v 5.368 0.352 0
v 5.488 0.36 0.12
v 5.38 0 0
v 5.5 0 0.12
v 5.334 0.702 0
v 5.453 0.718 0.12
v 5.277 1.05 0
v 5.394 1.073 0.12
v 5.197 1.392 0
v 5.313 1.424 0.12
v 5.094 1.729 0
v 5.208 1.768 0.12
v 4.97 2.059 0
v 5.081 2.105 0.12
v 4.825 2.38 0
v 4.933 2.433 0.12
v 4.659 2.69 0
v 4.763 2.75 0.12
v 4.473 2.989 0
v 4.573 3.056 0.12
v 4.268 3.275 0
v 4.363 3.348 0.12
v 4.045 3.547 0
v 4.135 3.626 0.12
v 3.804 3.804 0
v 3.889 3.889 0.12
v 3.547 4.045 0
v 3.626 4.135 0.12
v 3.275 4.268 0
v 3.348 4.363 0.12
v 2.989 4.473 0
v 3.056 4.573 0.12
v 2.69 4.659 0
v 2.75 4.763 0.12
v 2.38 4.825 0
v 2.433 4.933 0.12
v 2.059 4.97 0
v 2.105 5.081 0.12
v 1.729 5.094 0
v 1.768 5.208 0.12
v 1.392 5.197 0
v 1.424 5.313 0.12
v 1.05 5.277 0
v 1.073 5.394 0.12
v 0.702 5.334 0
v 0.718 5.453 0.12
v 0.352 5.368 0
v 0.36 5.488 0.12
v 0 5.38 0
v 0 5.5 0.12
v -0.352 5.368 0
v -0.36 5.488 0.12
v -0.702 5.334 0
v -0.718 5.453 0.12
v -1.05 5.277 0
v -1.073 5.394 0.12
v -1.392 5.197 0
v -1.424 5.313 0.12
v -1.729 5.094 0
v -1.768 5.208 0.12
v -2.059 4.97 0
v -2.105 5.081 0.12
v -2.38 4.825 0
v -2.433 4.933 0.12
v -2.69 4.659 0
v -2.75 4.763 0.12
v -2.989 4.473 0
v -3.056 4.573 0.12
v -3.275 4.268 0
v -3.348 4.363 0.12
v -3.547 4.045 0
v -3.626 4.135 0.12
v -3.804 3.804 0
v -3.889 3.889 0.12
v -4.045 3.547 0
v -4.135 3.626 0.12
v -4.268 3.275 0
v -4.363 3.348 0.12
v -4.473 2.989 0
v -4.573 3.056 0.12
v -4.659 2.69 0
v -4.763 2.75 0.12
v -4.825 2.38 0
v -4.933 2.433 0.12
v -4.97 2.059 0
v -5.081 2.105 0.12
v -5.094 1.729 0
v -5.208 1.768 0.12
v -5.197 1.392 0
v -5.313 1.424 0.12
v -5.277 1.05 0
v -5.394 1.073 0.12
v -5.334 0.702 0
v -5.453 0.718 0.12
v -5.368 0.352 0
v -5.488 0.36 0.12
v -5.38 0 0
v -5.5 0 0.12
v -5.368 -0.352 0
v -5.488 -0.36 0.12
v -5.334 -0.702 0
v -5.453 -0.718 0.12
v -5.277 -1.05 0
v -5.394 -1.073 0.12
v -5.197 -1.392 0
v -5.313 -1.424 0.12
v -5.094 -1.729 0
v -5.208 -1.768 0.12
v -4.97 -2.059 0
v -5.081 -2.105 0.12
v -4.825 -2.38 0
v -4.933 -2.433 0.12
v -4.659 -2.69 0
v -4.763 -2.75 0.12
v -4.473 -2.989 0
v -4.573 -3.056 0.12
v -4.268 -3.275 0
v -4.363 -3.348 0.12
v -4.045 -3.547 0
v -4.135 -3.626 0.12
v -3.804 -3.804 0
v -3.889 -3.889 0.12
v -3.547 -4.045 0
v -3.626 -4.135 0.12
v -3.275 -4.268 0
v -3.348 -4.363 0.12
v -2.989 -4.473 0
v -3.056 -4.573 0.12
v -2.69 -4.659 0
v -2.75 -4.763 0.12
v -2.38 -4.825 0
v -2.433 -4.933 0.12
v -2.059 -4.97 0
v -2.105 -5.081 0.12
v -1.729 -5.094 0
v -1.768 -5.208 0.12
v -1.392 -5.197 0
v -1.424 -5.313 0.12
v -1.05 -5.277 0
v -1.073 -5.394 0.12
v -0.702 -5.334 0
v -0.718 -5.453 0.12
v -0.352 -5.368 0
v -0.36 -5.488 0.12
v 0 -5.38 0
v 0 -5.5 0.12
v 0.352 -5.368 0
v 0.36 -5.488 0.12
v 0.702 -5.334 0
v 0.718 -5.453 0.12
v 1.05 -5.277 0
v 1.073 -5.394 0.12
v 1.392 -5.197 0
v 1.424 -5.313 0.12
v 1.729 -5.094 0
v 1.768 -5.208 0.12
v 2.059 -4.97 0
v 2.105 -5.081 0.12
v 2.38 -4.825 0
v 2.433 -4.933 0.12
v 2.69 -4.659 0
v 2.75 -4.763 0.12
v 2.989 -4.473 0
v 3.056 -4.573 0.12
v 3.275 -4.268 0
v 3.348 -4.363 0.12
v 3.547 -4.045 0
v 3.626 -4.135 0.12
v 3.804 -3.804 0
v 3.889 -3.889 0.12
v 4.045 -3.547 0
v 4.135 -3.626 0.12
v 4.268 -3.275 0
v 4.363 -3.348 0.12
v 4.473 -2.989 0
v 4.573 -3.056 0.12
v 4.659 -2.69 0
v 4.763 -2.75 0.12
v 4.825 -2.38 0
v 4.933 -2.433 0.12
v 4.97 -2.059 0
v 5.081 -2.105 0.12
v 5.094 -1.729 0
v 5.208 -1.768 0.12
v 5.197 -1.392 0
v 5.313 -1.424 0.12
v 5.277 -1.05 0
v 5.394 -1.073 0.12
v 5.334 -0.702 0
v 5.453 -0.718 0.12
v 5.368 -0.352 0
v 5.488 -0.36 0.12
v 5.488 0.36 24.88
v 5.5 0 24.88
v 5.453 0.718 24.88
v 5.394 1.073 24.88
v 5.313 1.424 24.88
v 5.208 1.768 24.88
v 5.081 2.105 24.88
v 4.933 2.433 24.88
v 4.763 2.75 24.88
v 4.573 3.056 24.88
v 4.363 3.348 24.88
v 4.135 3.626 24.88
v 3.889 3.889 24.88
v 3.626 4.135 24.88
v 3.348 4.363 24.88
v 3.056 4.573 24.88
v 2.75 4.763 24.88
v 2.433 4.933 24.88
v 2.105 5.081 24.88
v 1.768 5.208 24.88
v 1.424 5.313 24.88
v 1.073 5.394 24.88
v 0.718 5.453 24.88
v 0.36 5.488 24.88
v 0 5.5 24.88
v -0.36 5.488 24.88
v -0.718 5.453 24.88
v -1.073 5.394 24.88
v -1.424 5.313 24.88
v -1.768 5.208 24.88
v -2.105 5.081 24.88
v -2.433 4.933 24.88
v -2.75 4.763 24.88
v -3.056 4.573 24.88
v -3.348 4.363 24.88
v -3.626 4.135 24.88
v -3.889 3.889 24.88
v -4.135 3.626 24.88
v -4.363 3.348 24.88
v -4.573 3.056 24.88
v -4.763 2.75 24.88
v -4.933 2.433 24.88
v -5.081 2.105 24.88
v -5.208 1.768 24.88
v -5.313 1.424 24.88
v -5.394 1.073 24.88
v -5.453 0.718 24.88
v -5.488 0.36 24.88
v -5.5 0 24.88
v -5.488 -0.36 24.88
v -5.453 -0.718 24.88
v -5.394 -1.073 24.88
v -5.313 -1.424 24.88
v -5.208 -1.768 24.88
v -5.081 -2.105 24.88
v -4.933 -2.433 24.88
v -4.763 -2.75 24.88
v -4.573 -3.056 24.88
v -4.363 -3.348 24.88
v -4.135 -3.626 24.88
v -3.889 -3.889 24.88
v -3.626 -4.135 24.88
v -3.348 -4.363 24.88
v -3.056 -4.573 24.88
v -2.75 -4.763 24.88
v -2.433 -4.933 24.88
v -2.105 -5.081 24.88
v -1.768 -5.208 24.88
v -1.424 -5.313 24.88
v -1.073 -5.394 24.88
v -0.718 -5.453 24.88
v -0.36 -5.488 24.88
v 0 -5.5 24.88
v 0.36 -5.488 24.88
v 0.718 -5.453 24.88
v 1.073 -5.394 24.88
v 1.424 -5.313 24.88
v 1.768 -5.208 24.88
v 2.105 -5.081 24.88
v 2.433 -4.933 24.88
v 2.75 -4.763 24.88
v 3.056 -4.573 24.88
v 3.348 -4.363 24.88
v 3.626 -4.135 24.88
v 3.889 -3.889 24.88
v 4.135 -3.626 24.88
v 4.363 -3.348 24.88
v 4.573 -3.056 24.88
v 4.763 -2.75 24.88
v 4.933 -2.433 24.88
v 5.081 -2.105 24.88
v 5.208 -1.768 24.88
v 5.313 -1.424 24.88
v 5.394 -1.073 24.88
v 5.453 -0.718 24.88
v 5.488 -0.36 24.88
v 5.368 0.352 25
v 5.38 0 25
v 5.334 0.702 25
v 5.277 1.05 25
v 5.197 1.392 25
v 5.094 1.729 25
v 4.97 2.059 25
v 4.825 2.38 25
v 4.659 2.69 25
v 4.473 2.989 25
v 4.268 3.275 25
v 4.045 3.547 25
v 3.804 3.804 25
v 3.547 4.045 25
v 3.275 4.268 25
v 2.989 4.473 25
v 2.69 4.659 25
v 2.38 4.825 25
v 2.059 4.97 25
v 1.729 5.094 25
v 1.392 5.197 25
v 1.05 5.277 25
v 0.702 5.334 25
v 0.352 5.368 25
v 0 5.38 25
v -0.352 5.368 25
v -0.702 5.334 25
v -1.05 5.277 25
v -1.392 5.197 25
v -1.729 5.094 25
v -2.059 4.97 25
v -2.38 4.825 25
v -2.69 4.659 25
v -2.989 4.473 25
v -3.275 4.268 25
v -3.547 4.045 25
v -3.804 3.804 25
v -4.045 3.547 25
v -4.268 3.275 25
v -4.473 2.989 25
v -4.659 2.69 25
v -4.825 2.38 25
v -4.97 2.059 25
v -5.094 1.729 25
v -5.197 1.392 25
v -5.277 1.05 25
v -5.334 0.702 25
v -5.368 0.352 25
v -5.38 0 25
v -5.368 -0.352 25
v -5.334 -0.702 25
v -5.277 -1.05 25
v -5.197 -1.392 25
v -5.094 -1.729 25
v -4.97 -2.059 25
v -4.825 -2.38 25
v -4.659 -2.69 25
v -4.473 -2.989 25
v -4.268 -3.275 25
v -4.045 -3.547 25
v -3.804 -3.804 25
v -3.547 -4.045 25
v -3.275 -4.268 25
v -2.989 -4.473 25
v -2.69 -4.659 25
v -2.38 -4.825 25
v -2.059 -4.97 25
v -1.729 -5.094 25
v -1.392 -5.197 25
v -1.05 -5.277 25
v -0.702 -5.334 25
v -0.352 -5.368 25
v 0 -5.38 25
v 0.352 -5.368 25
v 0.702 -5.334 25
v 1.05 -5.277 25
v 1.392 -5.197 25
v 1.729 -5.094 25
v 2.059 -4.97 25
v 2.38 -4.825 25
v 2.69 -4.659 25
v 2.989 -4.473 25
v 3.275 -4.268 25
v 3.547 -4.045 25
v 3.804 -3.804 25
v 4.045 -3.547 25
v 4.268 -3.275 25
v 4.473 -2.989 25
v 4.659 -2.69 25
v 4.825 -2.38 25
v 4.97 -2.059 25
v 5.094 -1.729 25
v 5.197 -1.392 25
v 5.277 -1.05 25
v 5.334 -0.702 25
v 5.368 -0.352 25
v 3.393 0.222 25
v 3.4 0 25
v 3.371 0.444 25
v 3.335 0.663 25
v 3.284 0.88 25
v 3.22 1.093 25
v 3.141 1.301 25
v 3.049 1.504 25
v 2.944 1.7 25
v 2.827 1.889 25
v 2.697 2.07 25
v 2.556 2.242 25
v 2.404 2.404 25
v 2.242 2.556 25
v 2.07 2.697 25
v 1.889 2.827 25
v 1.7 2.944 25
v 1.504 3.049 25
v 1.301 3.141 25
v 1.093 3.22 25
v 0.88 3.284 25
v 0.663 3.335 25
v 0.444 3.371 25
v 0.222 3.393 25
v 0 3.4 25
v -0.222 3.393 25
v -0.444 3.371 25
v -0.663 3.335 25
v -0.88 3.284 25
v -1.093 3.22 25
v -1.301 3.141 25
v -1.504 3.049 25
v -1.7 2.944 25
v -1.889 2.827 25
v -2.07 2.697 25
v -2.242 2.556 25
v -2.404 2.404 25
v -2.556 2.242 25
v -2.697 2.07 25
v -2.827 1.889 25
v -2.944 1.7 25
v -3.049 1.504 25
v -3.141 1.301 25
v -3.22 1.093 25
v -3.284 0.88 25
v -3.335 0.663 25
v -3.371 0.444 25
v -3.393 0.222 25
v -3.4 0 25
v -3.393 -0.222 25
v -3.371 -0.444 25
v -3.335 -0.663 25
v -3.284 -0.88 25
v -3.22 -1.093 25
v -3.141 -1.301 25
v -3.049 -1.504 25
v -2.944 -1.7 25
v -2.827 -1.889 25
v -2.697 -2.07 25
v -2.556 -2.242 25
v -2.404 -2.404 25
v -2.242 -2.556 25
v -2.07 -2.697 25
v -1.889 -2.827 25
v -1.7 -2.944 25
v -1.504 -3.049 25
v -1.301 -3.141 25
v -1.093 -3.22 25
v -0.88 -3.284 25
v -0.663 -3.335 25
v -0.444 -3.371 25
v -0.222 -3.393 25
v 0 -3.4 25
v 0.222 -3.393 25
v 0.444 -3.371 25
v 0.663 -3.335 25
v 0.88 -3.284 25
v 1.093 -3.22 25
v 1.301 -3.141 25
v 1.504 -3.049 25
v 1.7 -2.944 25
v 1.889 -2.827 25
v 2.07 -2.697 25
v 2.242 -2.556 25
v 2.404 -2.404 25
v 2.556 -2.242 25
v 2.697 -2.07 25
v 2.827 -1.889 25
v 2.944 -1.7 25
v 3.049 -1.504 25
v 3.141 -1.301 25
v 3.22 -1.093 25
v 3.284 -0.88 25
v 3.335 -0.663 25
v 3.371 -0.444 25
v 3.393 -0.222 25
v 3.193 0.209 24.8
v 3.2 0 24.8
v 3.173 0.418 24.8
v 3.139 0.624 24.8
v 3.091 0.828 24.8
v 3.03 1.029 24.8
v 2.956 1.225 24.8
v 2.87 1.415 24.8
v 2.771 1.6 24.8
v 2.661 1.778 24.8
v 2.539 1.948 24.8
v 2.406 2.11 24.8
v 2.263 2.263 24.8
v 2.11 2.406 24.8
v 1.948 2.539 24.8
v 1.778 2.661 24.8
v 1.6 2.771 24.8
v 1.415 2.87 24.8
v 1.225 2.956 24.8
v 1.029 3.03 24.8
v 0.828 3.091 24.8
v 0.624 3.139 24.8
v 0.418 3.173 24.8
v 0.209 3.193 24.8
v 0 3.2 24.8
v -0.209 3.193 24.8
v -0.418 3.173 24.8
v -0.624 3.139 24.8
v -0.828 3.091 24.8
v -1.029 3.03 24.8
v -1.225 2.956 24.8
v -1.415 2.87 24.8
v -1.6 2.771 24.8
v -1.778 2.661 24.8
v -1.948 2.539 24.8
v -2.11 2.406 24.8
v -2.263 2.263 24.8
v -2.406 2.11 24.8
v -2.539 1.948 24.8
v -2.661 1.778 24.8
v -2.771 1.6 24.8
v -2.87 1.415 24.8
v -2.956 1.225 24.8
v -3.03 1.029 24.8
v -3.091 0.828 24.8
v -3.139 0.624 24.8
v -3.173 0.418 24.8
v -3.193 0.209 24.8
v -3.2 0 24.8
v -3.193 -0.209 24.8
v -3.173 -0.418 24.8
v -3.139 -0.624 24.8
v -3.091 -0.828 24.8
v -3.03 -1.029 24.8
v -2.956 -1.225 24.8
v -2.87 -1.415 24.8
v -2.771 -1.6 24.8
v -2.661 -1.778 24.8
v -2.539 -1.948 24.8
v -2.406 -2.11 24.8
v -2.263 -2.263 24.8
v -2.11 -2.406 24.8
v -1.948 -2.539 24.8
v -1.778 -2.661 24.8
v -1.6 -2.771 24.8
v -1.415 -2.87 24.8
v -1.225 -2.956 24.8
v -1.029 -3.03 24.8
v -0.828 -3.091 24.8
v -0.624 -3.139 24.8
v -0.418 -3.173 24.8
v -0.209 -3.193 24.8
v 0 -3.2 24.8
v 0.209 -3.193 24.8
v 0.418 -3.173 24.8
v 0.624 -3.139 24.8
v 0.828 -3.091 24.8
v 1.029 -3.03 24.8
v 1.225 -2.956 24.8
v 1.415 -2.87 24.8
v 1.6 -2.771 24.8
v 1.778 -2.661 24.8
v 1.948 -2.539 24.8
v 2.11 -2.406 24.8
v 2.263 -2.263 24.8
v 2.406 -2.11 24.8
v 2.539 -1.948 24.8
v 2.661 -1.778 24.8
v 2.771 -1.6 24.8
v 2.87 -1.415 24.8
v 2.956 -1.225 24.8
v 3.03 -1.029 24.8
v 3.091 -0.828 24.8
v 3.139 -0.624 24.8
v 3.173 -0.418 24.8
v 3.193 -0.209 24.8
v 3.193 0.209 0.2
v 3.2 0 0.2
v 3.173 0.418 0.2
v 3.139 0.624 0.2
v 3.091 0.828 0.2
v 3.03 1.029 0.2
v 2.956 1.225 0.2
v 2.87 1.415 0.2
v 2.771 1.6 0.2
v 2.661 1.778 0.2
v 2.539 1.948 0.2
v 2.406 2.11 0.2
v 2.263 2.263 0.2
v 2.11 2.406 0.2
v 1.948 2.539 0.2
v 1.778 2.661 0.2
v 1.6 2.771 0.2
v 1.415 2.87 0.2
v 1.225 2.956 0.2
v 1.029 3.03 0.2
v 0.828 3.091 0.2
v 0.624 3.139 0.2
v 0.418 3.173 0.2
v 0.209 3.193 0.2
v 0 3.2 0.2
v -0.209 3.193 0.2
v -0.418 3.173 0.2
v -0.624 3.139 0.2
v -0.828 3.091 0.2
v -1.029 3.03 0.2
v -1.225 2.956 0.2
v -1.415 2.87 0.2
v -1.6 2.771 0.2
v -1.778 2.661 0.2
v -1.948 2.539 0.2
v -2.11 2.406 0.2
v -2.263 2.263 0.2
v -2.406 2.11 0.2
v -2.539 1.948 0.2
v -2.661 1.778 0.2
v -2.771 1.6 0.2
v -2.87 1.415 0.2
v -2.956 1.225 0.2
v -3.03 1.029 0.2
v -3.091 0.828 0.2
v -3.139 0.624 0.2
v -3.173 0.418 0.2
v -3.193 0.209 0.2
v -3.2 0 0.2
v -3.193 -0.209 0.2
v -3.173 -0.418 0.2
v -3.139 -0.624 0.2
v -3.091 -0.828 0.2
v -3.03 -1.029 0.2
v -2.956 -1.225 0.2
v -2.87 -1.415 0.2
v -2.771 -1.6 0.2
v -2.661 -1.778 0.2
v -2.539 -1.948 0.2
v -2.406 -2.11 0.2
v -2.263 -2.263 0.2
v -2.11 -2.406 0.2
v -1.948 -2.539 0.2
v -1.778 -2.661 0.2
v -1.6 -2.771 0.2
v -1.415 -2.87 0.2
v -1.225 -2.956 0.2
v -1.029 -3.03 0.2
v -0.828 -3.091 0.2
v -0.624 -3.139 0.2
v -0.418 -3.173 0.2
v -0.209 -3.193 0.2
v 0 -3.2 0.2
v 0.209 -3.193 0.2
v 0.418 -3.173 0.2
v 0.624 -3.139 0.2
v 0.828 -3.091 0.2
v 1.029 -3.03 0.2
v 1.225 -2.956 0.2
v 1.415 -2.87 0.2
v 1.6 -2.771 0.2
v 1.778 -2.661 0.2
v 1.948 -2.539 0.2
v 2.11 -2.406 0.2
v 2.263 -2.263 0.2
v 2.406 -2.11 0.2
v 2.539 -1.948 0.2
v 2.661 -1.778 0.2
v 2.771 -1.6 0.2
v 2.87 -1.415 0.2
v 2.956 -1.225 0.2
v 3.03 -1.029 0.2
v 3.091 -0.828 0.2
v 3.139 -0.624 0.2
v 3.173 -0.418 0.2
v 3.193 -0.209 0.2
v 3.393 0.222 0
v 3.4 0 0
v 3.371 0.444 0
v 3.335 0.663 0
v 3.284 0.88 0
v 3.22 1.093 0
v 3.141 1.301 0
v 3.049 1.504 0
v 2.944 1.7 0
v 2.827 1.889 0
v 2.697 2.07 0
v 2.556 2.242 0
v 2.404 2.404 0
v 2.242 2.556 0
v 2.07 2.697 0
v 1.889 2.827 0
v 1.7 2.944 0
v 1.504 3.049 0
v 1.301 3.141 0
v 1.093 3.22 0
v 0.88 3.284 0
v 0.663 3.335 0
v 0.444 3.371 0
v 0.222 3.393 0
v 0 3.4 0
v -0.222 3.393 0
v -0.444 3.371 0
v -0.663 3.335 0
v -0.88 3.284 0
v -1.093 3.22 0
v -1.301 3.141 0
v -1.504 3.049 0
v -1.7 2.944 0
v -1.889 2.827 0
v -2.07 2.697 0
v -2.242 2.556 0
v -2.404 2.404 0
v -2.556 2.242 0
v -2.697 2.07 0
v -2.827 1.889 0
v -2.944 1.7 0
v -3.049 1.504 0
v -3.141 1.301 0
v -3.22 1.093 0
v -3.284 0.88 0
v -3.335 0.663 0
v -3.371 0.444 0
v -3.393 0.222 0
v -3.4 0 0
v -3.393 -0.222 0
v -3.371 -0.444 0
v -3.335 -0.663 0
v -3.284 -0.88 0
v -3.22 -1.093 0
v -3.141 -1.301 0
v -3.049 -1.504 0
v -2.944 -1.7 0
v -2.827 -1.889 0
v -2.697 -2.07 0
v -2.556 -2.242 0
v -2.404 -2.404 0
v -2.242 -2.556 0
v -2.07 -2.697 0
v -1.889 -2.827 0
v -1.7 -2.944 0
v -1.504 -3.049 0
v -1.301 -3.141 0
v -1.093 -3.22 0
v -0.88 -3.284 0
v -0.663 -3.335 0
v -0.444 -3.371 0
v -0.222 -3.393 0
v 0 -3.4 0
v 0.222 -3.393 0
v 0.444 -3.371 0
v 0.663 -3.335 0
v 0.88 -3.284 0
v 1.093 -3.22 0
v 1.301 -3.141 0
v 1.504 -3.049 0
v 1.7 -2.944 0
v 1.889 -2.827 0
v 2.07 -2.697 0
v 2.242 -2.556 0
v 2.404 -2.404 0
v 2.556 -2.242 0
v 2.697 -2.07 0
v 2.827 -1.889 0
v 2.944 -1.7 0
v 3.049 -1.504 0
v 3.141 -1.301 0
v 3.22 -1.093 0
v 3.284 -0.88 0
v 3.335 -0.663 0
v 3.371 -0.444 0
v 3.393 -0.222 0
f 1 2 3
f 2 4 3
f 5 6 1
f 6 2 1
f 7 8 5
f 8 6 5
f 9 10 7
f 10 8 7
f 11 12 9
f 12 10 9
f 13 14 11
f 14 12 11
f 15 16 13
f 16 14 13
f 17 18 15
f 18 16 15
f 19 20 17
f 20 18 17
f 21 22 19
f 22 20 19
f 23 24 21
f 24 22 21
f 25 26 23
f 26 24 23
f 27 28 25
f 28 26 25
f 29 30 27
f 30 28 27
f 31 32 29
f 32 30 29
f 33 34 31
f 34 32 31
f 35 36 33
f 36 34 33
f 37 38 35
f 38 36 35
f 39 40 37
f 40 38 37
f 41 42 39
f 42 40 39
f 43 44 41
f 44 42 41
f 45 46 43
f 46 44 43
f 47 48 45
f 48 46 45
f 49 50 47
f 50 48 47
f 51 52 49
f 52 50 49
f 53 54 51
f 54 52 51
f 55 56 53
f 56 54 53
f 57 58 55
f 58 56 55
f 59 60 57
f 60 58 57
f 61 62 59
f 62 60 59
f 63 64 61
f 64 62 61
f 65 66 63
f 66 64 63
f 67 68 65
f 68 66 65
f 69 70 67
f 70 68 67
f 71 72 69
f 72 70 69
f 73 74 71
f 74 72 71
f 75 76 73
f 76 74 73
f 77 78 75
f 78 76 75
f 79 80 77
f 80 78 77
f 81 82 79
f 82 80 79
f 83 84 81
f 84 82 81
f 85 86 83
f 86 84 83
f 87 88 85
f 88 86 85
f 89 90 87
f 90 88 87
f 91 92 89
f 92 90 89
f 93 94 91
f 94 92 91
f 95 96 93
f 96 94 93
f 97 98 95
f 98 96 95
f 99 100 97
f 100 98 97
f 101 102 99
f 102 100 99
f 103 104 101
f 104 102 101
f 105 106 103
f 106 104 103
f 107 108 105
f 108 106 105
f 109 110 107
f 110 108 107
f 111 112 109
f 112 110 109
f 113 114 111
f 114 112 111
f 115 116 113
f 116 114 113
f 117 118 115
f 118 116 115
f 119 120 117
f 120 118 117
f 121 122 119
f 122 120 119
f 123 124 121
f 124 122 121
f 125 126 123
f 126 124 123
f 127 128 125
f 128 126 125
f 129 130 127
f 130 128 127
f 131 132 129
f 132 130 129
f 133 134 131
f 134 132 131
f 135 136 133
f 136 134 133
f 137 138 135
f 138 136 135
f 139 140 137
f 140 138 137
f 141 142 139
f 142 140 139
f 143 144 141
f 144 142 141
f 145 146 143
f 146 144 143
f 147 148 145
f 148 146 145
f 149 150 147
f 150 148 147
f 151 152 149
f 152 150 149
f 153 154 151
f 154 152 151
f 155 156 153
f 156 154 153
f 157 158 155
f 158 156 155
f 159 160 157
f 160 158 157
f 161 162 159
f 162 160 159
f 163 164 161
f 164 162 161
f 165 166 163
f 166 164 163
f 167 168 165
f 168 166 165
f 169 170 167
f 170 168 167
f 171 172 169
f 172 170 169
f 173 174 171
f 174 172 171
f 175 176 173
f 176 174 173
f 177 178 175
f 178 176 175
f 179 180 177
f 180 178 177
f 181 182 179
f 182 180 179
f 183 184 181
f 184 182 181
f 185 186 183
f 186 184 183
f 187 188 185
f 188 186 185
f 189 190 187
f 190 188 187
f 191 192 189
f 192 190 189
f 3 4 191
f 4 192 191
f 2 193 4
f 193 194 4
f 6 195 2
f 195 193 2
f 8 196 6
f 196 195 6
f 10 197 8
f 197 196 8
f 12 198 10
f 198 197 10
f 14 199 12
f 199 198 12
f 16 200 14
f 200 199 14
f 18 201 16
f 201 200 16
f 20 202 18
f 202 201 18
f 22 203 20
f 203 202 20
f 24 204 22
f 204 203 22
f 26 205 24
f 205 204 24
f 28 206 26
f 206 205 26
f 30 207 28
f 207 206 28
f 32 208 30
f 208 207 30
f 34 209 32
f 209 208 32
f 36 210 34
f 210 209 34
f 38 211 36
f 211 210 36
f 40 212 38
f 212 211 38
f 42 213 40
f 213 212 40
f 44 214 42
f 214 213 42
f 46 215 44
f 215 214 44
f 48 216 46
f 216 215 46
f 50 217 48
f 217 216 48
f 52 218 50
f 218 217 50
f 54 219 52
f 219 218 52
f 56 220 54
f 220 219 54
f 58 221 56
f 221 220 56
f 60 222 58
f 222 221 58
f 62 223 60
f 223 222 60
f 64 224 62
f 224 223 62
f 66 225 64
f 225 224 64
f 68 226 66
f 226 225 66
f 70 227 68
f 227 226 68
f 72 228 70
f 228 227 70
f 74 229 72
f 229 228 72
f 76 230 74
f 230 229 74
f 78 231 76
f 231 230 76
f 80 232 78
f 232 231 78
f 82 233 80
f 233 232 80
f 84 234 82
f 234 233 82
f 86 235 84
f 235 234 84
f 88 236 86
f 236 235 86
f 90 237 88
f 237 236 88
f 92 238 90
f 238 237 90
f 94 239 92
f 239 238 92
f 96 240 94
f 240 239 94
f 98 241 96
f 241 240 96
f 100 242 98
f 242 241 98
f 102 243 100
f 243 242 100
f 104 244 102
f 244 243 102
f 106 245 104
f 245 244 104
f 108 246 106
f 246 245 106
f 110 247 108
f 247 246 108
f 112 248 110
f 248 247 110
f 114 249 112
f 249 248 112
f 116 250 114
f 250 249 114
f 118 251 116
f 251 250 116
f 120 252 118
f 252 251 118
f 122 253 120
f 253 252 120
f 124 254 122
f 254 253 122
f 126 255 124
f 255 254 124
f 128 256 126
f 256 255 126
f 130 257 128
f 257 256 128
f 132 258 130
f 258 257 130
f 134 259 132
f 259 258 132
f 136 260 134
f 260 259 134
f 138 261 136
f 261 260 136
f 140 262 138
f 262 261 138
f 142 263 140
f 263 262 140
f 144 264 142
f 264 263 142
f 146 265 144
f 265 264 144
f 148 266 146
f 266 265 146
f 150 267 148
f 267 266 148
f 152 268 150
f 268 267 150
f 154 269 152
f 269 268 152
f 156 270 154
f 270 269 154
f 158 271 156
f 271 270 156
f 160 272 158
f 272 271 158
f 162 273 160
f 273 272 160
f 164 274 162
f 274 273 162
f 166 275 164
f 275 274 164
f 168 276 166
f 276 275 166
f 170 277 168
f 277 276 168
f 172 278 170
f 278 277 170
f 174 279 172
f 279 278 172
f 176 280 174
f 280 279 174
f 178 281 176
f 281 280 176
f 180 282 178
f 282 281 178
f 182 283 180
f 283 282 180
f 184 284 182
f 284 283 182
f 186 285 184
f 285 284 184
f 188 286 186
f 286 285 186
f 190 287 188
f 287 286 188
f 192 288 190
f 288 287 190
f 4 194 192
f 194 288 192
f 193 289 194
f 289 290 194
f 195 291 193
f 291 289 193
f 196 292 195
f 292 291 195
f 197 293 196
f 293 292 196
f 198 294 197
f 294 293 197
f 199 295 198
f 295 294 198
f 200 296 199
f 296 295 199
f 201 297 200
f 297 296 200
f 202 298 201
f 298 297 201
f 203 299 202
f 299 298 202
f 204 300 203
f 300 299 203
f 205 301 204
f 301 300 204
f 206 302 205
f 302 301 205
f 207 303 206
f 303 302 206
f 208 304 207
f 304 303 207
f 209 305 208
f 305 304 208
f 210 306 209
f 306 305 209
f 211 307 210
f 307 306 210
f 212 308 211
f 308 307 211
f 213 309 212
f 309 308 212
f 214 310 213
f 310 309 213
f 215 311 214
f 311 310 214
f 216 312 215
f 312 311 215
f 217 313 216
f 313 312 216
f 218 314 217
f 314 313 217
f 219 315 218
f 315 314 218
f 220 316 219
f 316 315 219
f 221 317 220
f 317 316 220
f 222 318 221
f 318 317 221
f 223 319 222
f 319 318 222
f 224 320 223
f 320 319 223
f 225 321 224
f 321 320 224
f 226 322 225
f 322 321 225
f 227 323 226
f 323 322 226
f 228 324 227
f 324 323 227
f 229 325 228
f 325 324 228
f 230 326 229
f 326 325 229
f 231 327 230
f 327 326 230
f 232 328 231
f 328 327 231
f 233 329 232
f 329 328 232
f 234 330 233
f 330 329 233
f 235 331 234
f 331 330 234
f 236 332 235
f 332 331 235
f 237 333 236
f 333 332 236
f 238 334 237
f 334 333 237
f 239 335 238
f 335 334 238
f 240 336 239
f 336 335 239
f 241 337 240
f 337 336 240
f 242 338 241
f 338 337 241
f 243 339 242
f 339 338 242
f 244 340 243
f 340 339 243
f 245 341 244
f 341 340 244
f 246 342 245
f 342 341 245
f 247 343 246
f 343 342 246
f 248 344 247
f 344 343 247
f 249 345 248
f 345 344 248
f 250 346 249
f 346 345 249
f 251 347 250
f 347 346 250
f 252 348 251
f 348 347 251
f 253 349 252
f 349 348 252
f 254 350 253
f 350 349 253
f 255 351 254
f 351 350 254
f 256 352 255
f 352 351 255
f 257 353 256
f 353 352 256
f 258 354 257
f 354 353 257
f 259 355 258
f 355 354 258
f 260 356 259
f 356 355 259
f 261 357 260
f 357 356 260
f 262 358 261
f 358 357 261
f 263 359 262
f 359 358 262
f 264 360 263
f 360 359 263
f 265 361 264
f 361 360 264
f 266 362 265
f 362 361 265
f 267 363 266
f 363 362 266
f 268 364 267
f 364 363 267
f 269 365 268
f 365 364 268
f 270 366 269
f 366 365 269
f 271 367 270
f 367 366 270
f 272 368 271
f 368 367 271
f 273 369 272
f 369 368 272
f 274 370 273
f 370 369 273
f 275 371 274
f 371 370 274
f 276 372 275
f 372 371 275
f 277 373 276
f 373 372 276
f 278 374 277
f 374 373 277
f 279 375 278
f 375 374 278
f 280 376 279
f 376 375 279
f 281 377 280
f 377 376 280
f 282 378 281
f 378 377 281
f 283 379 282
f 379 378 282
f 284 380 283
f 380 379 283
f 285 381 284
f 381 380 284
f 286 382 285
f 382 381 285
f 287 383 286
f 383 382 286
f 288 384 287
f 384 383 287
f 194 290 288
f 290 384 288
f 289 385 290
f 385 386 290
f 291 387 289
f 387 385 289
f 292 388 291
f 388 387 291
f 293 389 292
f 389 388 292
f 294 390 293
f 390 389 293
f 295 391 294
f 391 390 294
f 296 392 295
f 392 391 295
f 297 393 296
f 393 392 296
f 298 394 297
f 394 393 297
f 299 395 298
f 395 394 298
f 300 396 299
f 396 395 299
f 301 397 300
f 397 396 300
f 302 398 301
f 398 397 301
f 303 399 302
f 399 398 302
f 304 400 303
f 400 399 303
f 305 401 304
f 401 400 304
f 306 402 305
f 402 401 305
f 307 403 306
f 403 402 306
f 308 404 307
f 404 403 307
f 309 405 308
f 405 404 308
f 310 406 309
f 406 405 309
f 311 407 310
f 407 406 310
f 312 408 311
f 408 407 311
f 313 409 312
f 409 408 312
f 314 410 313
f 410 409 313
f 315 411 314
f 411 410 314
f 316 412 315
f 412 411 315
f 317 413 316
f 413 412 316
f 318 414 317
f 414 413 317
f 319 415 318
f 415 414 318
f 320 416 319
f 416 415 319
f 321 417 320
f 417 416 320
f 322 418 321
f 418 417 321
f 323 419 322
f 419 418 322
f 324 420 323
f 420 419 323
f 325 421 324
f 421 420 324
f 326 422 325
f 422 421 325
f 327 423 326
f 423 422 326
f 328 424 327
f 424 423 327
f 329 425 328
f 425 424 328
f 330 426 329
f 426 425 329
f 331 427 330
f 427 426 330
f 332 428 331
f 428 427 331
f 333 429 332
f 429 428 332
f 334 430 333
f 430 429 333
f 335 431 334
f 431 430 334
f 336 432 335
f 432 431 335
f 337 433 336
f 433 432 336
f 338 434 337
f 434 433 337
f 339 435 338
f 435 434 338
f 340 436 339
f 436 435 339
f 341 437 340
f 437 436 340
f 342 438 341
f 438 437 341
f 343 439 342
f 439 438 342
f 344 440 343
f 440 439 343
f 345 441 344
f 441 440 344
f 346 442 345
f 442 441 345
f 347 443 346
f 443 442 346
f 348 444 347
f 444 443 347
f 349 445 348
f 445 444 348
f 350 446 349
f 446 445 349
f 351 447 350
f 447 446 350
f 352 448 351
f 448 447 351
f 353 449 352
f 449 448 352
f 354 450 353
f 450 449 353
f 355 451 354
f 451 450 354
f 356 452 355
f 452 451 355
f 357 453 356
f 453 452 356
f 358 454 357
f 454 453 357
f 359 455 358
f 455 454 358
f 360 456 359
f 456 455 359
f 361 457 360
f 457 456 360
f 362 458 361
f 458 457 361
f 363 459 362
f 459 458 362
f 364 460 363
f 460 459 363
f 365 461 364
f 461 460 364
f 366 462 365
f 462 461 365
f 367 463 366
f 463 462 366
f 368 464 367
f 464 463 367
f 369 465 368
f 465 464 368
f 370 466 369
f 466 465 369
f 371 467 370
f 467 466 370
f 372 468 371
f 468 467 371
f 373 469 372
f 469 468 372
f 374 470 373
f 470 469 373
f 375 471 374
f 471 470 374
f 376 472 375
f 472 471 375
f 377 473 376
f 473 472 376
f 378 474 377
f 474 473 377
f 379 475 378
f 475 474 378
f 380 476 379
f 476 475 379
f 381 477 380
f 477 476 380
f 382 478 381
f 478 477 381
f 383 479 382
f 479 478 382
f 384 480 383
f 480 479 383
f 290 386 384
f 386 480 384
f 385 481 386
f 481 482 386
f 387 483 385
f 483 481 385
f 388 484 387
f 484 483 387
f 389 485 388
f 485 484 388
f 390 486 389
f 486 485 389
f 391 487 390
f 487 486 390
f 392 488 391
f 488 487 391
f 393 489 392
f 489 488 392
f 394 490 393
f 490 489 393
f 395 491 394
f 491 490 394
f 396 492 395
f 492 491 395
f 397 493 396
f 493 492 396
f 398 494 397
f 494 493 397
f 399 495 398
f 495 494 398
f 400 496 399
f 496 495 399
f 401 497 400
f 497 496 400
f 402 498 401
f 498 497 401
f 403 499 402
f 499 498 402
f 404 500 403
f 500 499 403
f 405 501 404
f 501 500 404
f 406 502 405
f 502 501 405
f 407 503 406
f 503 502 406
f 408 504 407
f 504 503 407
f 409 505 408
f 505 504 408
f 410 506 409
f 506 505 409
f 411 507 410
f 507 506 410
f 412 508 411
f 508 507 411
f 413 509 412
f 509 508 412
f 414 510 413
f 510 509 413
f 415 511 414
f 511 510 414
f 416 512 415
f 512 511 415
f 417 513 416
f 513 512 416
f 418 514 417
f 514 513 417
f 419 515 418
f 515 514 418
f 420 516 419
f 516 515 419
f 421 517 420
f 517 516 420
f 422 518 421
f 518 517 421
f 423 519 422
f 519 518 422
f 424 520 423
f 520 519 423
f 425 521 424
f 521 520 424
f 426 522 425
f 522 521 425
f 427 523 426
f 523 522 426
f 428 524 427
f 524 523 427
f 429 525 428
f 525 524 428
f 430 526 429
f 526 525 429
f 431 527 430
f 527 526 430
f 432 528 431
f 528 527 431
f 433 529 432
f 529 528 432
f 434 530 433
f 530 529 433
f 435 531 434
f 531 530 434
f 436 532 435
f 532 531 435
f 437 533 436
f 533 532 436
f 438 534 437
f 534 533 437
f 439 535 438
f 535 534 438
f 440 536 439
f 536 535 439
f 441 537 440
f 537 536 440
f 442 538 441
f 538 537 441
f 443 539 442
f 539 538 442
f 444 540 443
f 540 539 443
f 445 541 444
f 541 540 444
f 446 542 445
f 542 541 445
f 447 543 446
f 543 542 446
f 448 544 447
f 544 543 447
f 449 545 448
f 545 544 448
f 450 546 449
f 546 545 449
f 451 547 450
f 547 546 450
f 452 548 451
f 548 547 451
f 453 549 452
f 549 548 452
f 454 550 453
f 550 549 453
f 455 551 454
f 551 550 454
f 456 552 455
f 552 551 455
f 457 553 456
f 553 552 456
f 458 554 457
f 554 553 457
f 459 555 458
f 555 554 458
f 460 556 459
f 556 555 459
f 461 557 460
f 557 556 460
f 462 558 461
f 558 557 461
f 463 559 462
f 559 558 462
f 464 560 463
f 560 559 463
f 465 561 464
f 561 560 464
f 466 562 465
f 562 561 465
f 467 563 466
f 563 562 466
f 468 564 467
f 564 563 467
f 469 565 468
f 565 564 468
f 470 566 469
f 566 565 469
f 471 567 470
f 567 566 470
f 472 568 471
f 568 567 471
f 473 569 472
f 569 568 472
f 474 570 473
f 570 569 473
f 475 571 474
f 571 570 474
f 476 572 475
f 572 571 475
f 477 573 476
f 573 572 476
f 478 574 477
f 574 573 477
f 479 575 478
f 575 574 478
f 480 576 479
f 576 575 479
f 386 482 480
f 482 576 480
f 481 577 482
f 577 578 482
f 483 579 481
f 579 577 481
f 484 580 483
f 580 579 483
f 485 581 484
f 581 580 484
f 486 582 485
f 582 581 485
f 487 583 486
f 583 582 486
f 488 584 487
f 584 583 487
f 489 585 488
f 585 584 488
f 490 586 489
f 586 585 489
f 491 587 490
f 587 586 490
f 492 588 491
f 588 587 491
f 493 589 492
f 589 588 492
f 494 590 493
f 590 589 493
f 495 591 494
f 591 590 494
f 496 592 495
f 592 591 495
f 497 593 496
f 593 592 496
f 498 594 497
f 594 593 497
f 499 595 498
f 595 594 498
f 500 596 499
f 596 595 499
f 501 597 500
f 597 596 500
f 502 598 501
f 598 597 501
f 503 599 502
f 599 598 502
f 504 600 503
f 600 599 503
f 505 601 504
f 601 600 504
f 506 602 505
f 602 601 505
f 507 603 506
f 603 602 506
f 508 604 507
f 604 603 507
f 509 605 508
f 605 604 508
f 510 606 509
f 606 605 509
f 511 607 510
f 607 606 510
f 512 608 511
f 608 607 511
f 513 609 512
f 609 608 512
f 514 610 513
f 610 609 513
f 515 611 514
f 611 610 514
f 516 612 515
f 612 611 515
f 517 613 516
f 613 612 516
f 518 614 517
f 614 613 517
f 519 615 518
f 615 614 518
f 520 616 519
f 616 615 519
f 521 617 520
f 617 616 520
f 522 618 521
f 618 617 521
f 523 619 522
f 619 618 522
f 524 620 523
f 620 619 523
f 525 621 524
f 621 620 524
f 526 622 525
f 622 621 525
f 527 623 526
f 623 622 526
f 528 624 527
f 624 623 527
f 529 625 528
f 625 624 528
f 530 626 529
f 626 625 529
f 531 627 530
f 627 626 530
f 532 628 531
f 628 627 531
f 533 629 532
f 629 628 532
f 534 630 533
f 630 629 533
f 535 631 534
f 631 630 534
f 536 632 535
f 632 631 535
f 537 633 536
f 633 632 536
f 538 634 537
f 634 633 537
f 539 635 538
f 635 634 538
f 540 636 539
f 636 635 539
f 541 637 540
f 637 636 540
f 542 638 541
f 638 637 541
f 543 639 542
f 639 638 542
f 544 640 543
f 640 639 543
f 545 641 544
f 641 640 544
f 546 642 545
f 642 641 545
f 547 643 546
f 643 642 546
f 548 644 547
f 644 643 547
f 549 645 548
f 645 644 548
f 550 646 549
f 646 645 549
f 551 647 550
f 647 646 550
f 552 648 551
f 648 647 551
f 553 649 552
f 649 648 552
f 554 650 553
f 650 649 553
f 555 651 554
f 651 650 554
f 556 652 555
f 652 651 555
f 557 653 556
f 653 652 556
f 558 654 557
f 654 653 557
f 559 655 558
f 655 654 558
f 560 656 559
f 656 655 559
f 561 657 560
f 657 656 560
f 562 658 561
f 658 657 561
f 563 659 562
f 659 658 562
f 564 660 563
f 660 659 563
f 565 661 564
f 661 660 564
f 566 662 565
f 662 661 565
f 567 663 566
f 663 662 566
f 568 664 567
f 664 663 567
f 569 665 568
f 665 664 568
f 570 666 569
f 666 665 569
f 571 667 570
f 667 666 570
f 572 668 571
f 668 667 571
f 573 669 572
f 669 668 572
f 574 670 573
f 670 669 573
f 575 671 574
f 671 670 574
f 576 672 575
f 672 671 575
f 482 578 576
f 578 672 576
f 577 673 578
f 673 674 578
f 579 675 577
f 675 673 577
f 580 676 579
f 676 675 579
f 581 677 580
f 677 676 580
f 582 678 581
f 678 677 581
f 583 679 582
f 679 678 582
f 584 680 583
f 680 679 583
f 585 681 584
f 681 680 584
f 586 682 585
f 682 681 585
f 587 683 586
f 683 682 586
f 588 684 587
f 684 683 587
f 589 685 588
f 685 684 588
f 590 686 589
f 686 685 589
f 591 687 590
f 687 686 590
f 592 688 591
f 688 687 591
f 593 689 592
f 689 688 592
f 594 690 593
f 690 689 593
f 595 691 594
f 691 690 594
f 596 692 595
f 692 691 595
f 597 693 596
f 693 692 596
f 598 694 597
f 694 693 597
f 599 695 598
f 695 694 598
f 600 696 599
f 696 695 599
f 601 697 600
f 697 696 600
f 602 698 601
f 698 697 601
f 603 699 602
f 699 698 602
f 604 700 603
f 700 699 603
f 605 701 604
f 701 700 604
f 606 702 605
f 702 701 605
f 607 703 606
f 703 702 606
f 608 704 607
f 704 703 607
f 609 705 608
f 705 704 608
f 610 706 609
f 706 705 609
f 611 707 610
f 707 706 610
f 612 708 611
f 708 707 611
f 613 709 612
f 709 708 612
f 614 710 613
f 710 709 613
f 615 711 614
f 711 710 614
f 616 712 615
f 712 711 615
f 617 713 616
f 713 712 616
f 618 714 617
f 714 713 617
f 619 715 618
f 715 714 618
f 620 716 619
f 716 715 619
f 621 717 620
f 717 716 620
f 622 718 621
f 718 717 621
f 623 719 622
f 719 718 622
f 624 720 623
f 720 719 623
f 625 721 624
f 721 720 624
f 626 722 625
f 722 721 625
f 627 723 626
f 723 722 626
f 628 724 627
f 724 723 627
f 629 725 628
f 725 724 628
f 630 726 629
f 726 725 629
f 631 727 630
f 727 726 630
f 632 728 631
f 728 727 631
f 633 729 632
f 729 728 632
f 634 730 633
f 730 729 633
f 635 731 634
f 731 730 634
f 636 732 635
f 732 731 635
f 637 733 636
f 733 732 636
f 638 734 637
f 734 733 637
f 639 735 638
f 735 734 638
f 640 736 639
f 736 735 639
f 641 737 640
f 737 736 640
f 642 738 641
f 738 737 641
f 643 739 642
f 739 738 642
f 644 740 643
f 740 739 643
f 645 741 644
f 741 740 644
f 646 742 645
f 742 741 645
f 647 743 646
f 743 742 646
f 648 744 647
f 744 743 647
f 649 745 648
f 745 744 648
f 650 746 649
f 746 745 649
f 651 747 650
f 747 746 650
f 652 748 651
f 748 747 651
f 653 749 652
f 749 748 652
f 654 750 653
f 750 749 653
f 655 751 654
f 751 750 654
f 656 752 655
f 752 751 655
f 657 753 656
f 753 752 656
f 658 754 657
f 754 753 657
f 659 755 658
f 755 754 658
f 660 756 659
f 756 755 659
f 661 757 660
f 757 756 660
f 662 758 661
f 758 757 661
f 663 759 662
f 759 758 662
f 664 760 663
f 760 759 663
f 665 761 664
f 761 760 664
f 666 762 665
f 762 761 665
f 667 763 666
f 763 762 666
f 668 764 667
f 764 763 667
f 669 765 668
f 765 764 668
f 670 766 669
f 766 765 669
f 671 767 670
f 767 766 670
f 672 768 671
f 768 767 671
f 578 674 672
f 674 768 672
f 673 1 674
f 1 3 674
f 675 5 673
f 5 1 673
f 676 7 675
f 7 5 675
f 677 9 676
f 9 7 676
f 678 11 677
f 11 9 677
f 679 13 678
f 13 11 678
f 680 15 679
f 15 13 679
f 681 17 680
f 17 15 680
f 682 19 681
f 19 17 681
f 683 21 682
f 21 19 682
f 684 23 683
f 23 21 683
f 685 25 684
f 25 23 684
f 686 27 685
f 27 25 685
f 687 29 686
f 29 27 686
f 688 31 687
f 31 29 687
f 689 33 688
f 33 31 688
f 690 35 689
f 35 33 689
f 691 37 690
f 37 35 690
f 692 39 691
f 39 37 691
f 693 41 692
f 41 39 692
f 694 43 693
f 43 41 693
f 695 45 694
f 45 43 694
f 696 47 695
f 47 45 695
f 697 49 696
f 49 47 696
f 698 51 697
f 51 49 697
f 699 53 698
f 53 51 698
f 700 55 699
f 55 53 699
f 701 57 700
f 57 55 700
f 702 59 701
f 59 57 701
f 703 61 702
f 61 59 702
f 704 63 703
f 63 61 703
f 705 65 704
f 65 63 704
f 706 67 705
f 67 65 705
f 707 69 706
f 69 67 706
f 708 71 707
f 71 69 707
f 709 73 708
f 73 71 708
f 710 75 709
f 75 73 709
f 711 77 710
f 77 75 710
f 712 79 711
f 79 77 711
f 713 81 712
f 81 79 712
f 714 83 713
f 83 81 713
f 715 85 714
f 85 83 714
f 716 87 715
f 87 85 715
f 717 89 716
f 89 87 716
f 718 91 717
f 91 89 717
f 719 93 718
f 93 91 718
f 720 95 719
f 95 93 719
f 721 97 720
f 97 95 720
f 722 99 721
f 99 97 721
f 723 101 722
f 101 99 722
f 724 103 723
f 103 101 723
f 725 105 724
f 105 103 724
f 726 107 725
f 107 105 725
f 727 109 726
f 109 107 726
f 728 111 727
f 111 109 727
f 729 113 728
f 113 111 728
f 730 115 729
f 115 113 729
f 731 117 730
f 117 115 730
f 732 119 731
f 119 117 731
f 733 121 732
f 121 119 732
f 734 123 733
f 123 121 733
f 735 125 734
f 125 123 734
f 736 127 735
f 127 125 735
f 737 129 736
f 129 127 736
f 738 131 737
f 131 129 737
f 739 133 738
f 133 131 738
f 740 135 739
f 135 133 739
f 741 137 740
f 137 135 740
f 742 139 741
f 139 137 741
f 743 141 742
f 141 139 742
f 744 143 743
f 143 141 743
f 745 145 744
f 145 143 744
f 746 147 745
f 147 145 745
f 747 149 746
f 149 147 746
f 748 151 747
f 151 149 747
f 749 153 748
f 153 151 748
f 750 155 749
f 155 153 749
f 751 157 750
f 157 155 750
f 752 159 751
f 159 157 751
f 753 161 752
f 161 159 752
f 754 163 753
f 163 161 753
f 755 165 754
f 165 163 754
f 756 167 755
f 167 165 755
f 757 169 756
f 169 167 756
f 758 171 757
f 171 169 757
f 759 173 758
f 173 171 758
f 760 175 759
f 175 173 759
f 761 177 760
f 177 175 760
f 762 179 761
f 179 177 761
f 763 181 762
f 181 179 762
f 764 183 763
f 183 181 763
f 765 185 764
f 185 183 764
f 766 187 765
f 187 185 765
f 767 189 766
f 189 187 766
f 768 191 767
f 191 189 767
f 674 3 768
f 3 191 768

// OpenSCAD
// OOMP generic catalogue model; units: mm.
// Stud length is additional to body depth. Tapping depths are model assumptions.
variant = "full"; // [full, display]
family = "spacer";
connection_type = "plain";
depth_mm = 25;
stud_length_mm = 0;
tapped_depth_mm = 0;
bore_mm = 6.4;
outer_diameter_mm = 11;
across_flats_mm = 6;
thread_nominal_diameter_mm = 3;
thread_pitch_mm = 0.5;
edge_chamfer_mm = 0.12;
mouth_chamfer_mm = 0.2;
angular_segments = 96;
samples_per_pitch = 16;

// Boundary travels up the outside, then down any tapped/plain bore.
// Equal-height rings at shoulders form the annular shoulder faces.
n = angular_segments;
threaded = family == "standoff";
has_stud = connection_type == "stud_to_tapped" || connection_type == "stud_to_stud";
two_studs = connection_type == "stud_to_stud";
through = !threaded || connection_type == "tapped_to_tapped";
pitch = thread_pitch_mm;
diameter = threaded ? thread_nominal_diameter_mm : bore_mm;
minor = diameter - 5*sqrt(3)*pitch/8;
transition = mouth_chamfer_mm + (threaded ? 5*sqrt(3)*pitch/16 : 0);
tip_chamfer = mouth_chamfer_mm + 17*sqrt(3)*pitch/48;
function sorted(v) = len(v)<=1 ? v : let(p=v[0])
    concat(sorted([for(x=v) if(x<p-1e-8) x]), [p], sorted([for(x=v) if(x>p+1e-8) x]));
function reverse(v) = [for(i=[len(v)-1:-1:0]) v[i]];
function theta(i) = i*360/n;
function fract(x) = x-floor(x);
function phase_distance(i,z) = abs(fract(z/pitch-theta(i)/360+0.5)-0.5);
function thread_r(i,z) = minor/2 + min(5*sqrt(3)*pitch/16,
    max(0,(phase_distance(i,z)-0.125)*pitch*sqrt(3)));
function stud_r(i,z,tip) = min(diameter/2 - (variant=="full" ?
    min(17*sqrt(3)*pitch/48,max(0,(phase_distance(i,z)-0.0625)*pitch*sqrt(3))) : 0),
    diameter/2-tip_chamfer+abs(z-tip));
function body_r(i,z) = (threaded ? across_flats_mm/2/cos(theta(i)%60-30) : outer_diameter_mm/2)
    - max(0,edge_chamfer_mm-min(z,depth_mm-z));
function bore_r(i,z) = max(threaded ? (variant=="full" ? thread_r(i,z) : minor/2) : diameter/2,
    diameter/2+mouth_chamfer_mm-(through ? min(z,depth_mm-z) : depth_mm-z));
function stud_z(a,b,tip) = let(count=variant=="full" ? ceil(stud_length_mm/pitch*samples_per_pitch) : 1)
    sorted(concat([for(i=[0:count]) a+(b-a)*i/count], [tip==a ? tip+tip_chamfer : tip-tip_chamfer]));
body_z = sorted([0,edge_chamfer_mm,depth_mm-edge_chamfer_mm,depth_mm]);
low = through ? 0 : depth_mm-tapped_depth_mm;
count = threaded && variant=="full" ? ceil((depth_mm-low)/pitch*samples_per_pitch) : 1;
bore_z = two_studs ? [] : reverse(sorted(concat(
    [for(i=[0:count]) low+(depth_mm-low)*i/count],
    [depth_mm-mouth_chamfer_mm,depth_mm-transition],
    through ? [mouth_chamfer_mm,transition] : [])));
// Ring descriptors: [height, kind, tip]. Kind: 0 body, 1 stud, 2 bore.
rings = concat(
    has_stud ? [for(z=stud_z(-stud_length_mm,0,-stud_length_mm)) [z,1,-stud_length_mm]] : [],
    [for(z=body_z) [z,0,0]],
    two_studs ? [for(z=stud_z(depth_mm,depth_mm+stud_length_mm,depth_mm+stud_length_mm)) [z,1,depth_mm+stud_length_mm]] : [],
    [for(z=bore_z) [z,2,0]]);
function radius(i,ring) = ring[1]==0 ? body_r(i,ring[0]) :
    ring[1]==1 ? stud_r(i,ring[0],ring[2]) : bore_r(i,ring[0]);
points = concat([for(ring=rings) for(i=[0:n-1])
    [radius(i,ring)*cos(theta(i)),radius(i,ring)*sin(theta(i)),ring[0]]],
    through ? [] : [[0,0,rings[0][0]],[0,0,rings[len(rings)-1][0]]]);
center = len(rings)*n;
last = (len(rings)-1)*n;
// OpenSCAD winding is opposite to STL winding.
faces = concat(
    [for(j=[0:len(rings)-(through ? 1 : 2)]) for(i=[0:n-1]) each
        let(a=j*n+i,b=j*n+(i+1)%n,c=((j+1)%len(rings))*n+(i+1)%n,d=((j+1)%len(rings))*n+i)
        [[a,c,b],[a,d,c]]],
    through ? [] : [for(i=[0:n-1]) each let(k=(i+1)%n)
        [[center,i,k],[center+1,last+k,last+i]]]);
assert(family=="spacer" || family=="standoff");
assert(!threaded || connection_type=="tapped_to_tapped" || has_stud);
assert(depth_mm>0 && diameter>0 && pitch>0);
assert(variant=="full" || variant=="display");
assert(n>=24 && n%12==0 && samples_per_pitch>=8);
assert(mouth_chamfer_mm>0 && mouth_chamfer_mm<depth_mm/2);
assert(edge_chamfer_mm>=0 && edge_chamfer_mm<depth_mm/2);
assert(diameter+4*max(mouth_chamfer_mm,edge_chamfer_mm) < (threaded ? across_flats_mm : outer_diameter_mm));
assert(!has_stud || stud_length_mm>2*mouth_chamfer_mm);
assert(!through || !threaded || 2*transition<depth_mm);
assert(connection_type!="stud_to_tapped" || (tapped_depth_mm>transition && tapped_depth_mm<depth_mm));
color([0.86,0.85,0.81]) polyhedron(points=points,faces=faces,convexity=20);
